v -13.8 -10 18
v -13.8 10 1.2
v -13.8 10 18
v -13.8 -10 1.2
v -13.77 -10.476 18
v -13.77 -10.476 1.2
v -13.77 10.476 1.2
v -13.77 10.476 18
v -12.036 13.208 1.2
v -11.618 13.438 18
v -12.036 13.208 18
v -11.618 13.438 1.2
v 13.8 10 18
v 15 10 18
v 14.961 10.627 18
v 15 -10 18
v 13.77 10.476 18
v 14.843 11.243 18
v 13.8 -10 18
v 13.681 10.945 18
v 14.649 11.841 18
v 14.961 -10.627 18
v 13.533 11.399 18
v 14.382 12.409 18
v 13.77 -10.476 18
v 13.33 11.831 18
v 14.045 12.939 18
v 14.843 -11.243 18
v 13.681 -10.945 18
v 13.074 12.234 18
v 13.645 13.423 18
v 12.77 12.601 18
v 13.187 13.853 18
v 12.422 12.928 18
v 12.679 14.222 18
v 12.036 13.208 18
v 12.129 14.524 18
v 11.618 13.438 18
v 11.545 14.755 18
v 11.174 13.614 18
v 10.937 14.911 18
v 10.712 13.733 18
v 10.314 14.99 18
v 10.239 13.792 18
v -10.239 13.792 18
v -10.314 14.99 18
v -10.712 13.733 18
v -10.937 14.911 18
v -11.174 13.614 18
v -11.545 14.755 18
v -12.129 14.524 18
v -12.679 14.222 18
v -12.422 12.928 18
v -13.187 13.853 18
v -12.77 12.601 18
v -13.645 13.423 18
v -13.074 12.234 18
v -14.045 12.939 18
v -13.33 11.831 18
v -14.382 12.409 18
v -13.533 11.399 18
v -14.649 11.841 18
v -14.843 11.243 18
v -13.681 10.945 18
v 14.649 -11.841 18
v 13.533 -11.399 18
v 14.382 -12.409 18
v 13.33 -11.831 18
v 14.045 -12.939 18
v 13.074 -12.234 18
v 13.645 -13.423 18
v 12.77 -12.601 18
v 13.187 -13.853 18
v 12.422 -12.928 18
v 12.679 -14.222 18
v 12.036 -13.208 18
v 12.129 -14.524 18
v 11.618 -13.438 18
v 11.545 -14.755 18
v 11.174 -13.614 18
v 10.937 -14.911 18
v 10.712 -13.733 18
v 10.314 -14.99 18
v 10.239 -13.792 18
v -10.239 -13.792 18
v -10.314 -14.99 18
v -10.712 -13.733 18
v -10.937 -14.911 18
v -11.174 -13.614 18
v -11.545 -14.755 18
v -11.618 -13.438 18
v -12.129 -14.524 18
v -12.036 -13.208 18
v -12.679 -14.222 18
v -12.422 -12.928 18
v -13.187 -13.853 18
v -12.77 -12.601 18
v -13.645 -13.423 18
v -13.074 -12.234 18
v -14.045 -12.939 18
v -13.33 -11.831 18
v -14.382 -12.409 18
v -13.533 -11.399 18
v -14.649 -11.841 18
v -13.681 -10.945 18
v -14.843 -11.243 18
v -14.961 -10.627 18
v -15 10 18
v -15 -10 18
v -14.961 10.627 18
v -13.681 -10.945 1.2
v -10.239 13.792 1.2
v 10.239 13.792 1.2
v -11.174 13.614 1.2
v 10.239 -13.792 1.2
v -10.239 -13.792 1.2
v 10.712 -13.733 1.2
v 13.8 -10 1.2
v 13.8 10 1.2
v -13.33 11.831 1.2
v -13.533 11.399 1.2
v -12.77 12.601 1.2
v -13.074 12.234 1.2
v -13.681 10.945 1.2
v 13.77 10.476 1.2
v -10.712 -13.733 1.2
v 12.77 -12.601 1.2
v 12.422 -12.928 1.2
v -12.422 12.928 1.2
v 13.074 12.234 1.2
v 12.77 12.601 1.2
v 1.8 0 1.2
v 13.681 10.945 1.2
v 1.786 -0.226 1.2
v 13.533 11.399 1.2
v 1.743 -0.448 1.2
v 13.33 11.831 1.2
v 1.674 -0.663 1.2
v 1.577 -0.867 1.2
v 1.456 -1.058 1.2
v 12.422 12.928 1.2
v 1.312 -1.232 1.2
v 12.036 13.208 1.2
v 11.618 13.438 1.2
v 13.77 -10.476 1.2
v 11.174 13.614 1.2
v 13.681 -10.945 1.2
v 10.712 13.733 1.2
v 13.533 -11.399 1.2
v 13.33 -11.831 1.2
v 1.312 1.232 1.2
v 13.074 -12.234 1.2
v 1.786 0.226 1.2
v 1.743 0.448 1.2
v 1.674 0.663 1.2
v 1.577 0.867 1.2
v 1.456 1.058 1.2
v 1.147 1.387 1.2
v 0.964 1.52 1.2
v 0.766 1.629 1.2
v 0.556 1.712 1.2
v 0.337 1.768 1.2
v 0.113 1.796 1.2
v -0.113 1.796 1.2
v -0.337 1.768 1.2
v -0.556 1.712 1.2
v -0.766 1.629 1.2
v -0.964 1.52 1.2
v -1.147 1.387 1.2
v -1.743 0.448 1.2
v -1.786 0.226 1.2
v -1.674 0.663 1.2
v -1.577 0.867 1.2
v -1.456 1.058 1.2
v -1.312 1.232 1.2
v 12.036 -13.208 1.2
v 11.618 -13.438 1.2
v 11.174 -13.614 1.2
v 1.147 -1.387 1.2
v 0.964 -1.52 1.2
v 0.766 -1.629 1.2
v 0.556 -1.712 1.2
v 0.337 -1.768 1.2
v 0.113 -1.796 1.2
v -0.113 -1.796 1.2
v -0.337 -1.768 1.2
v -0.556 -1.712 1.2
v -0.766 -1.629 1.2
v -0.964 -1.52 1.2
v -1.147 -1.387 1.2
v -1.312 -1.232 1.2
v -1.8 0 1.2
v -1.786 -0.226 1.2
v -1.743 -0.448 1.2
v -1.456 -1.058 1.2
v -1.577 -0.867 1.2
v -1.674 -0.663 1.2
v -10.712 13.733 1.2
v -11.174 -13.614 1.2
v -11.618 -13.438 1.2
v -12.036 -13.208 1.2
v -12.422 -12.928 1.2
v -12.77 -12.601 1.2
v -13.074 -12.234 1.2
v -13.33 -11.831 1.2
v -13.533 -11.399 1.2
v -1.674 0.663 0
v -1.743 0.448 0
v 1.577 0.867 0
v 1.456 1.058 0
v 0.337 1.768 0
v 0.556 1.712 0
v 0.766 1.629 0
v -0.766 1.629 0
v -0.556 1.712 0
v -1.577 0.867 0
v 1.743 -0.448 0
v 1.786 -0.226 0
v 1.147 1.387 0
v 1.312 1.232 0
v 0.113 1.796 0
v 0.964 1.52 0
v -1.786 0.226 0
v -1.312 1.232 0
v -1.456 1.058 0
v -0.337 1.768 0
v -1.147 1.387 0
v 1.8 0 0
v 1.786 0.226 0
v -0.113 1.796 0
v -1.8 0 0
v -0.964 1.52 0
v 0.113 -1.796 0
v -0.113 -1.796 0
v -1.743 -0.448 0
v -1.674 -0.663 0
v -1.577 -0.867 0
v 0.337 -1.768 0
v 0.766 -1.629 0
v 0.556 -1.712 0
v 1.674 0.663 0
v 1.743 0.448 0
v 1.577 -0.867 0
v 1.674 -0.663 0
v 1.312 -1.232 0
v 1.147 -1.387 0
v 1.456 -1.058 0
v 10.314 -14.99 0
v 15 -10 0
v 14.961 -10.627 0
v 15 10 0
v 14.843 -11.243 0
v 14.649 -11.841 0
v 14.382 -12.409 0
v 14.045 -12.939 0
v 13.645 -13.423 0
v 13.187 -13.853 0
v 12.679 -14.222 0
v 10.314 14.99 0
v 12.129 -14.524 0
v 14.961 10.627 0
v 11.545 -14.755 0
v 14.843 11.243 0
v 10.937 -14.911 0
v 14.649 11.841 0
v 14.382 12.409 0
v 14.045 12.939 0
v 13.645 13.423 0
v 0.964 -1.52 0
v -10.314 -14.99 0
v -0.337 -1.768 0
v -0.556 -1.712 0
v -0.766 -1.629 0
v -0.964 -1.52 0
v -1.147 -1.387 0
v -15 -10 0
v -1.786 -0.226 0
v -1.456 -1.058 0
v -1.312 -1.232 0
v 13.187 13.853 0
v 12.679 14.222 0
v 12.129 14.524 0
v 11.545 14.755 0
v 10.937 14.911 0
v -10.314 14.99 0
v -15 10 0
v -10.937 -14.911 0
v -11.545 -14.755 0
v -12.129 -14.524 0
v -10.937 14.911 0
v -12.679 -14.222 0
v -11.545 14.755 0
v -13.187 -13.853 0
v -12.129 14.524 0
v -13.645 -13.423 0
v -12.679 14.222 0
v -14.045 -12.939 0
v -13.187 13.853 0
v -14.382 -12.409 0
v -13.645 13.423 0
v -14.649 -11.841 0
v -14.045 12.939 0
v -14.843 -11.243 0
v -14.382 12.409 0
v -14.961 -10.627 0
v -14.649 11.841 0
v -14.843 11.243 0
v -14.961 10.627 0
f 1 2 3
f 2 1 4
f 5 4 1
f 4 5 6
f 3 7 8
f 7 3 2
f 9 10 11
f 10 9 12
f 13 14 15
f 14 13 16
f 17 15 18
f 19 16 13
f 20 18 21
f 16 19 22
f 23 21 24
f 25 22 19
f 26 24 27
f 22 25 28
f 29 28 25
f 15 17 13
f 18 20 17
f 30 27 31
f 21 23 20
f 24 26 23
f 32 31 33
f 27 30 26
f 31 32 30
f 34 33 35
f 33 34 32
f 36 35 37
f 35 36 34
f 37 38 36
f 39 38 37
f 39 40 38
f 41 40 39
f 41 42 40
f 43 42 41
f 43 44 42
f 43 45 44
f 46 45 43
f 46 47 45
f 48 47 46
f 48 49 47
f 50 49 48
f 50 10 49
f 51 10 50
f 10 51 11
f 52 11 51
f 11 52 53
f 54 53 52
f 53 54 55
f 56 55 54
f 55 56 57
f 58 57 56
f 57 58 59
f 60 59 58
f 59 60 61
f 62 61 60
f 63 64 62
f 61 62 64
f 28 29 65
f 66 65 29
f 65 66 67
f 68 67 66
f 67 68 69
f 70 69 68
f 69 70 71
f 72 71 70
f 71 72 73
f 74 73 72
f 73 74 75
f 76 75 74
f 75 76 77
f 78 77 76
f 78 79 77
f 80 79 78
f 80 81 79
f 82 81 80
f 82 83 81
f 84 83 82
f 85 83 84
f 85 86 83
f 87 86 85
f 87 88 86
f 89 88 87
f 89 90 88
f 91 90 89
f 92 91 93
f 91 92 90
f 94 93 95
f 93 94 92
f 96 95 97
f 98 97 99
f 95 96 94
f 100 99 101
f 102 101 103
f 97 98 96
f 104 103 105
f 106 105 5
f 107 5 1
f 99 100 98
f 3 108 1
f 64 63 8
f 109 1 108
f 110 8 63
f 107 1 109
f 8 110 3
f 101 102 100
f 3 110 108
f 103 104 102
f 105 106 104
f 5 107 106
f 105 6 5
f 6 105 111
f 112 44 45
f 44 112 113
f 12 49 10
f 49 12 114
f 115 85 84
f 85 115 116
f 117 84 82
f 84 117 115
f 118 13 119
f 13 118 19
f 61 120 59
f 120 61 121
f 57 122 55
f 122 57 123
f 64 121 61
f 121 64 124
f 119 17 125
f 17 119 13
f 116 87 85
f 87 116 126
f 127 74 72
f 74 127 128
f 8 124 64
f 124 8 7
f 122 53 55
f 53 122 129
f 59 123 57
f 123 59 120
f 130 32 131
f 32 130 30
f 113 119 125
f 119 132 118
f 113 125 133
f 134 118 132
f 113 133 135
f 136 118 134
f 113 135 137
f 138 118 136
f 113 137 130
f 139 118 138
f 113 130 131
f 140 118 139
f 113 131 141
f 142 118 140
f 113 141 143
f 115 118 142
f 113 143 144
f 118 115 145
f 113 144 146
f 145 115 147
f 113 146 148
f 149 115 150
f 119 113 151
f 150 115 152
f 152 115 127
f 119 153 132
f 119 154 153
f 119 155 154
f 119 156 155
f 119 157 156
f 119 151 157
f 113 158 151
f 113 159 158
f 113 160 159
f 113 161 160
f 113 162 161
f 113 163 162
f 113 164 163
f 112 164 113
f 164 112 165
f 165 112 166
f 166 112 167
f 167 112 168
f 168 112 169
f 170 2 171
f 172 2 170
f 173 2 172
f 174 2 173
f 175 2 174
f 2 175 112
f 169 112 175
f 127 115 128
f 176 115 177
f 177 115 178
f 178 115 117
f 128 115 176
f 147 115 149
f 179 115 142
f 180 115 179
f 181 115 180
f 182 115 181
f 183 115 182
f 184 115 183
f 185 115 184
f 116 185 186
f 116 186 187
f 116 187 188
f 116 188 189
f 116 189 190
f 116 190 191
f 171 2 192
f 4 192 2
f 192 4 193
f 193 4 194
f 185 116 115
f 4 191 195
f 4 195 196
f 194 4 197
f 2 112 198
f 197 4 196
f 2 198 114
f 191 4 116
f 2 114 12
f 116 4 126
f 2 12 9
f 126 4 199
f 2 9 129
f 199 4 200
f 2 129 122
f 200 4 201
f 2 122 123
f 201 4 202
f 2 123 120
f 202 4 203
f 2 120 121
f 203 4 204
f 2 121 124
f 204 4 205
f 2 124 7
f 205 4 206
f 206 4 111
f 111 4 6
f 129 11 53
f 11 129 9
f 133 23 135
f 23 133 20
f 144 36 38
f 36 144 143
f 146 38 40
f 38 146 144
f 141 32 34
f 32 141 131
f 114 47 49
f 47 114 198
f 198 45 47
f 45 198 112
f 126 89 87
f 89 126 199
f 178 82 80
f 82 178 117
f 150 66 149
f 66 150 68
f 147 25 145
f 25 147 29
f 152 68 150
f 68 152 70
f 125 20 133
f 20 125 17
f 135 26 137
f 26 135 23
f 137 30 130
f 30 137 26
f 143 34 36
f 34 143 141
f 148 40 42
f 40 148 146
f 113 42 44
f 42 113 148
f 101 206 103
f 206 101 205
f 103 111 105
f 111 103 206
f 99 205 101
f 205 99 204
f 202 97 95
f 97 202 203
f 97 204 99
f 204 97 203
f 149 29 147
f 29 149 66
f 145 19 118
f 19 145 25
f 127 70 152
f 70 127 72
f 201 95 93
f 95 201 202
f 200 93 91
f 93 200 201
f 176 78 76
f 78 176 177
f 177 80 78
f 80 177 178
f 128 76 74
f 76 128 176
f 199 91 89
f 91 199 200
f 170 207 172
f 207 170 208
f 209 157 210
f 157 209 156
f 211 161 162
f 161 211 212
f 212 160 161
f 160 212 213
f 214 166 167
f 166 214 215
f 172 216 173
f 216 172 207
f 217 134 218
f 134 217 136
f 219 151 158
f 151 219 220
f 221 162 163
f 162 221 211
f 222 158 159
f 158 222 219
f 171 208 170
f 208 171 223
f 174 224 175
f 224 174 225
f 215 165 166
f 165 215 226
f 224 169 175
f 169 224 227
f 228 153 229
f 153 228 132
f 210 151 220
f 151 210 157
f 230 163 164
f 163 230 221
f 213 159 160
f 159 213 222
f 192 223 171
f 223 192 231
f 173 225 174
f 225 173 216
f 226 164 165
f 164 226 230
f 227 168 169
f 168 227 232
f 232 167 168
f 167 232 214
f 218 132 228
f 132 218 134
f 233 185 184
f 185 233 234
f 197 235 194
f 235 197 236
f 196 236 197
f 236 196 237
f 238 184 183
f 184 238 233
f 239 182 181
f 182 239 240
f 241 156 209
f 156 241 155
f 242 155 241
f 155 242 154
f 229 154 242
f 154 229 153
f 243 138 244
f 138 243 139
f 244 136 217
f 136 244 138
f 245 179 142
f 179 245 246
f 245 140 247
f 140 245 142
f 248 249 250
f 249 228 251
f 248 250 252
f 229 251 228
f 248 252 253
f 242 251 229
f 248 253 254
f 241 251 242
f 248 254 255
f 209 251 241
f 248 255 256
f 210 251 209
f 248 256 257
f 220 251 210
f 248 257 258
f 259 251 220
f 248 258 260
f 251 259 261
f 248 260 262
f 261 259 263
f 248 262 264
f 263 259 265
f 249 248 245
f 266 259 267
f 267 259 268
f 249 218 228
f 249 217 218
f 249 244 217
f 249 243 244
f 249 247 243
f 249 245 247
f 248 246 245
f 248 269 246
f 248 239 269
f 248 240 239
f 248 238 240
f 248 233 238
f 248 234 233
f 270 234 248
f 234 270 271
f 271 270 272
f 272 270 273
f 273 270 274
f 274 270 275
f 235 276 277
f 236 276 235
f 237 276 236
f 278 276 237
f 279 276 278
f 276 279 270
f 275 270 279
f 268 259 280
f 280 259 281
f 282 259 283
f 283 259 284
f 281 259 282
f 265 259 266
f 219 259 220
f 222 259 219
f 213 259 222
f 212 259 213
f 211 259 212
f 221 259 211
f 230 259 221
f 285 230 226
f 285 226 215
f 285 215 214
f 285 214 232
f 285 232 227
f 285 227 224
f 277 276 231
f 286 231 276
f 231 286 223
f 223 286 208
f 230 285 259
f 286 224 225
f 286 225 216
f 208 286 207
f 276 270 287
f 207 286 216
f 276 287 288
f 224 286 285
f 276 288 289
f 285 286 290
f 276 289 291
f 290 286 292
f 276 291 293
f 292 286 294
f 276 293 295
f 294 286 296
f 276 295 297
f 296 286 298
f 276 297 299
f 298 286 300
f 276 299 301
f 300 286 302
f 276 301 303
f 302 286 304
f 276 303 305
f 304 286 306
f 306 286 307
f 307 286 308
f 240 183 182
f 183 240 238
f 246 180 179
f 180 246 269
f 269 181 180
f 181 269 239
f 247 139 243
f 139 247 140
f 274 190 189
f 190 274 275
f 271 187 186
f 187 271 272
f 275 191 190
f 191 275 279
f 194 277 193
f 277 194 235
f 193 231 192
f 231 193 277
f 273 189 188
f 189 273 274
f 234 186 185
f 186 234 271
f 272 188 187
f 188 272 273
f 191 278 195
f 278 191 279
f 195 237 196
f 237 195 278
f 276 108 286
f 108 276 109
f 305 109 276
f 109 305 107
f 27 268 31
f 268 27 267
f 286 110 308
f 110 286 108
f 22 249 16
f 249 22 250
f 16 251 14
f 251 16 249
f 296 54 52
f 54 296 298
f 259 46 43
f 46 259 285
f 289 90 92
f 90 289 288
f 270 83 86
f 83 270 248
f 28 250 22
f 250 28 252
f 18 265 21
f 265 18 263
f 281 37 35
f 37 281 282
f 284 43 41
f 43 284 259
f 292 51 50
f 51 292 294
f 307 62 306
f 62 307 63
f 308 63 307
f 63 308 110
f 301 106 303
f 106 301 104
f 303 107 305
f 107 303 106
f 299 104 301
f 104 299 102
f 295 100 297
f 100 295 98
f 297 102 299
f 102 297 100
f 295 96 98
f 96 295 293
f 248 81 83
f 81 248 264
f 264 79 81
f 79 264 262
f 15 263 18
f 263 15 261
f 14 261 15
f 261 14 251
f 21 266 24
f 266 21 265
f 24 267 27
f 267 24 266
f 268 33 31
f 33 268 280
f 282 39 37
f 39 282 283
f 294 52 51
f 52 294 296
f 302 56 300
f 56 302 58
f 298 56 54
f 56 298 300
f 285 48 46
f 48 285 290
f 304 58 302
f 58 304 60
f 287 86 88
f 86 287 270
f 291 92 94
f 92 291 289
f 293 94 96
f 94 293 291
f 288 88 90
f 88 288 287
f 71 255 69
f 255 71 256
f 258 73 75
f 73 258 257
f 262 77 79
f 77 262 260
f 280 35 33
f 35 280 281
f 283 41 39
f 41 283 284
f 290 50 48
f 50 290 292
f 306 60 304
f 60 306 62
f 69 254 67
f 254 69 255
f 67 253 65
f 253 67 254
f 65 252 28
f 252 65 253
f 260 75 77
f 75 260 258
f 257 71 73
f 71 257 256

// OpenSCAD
$fn = 50;


difference() {
	union() {
		hull() {
			translate(v = [-10.0000000000, 10.0000000000, 0]) {
				cylinder(h = 18, r = 5);
			}
			translate(v = [10.0000000000, 10.0000000000, 0]) {
				cylinder(h = 18, r = 5);
			}
			translate(v = [-10.0000000000, -10.0000000000, 0]) {
				cylinder(h = 18, r = 5);
			}
			translate(v = [10.0000000000, -10.0000000000, 0]) {
				cylinder(h = 18, r = 5);
			}
		}
	}
	union() {
		translate(v = [0, 0, 1.2000000000]) {
			hull() {
				translate(v = [-10.0000000000, 10.0000000000, 0]) {
					cylinder(h = 16.8000000000, r = 3.8000000000);
				}
				translate(v = [10.0000000000, 10.0000000000, 0]) {
					cylinder(h = 16.8000000000, r = 3.8000000000);
				}
				translate(v = [-10.0000000000, -10.0000000000, 0]) {
					cylinder(h = 16.8000000000, r = 3.8000000000);
				}
				translate(v = [10.0000000000, -10.0000000000, 0]) {
					cylinder(h = 16.8000000000, r = 3.8000000000);
				}
			}
		}
		#cylinder(h = 1.2000000000, r = 1.8000000000);
	}
}
